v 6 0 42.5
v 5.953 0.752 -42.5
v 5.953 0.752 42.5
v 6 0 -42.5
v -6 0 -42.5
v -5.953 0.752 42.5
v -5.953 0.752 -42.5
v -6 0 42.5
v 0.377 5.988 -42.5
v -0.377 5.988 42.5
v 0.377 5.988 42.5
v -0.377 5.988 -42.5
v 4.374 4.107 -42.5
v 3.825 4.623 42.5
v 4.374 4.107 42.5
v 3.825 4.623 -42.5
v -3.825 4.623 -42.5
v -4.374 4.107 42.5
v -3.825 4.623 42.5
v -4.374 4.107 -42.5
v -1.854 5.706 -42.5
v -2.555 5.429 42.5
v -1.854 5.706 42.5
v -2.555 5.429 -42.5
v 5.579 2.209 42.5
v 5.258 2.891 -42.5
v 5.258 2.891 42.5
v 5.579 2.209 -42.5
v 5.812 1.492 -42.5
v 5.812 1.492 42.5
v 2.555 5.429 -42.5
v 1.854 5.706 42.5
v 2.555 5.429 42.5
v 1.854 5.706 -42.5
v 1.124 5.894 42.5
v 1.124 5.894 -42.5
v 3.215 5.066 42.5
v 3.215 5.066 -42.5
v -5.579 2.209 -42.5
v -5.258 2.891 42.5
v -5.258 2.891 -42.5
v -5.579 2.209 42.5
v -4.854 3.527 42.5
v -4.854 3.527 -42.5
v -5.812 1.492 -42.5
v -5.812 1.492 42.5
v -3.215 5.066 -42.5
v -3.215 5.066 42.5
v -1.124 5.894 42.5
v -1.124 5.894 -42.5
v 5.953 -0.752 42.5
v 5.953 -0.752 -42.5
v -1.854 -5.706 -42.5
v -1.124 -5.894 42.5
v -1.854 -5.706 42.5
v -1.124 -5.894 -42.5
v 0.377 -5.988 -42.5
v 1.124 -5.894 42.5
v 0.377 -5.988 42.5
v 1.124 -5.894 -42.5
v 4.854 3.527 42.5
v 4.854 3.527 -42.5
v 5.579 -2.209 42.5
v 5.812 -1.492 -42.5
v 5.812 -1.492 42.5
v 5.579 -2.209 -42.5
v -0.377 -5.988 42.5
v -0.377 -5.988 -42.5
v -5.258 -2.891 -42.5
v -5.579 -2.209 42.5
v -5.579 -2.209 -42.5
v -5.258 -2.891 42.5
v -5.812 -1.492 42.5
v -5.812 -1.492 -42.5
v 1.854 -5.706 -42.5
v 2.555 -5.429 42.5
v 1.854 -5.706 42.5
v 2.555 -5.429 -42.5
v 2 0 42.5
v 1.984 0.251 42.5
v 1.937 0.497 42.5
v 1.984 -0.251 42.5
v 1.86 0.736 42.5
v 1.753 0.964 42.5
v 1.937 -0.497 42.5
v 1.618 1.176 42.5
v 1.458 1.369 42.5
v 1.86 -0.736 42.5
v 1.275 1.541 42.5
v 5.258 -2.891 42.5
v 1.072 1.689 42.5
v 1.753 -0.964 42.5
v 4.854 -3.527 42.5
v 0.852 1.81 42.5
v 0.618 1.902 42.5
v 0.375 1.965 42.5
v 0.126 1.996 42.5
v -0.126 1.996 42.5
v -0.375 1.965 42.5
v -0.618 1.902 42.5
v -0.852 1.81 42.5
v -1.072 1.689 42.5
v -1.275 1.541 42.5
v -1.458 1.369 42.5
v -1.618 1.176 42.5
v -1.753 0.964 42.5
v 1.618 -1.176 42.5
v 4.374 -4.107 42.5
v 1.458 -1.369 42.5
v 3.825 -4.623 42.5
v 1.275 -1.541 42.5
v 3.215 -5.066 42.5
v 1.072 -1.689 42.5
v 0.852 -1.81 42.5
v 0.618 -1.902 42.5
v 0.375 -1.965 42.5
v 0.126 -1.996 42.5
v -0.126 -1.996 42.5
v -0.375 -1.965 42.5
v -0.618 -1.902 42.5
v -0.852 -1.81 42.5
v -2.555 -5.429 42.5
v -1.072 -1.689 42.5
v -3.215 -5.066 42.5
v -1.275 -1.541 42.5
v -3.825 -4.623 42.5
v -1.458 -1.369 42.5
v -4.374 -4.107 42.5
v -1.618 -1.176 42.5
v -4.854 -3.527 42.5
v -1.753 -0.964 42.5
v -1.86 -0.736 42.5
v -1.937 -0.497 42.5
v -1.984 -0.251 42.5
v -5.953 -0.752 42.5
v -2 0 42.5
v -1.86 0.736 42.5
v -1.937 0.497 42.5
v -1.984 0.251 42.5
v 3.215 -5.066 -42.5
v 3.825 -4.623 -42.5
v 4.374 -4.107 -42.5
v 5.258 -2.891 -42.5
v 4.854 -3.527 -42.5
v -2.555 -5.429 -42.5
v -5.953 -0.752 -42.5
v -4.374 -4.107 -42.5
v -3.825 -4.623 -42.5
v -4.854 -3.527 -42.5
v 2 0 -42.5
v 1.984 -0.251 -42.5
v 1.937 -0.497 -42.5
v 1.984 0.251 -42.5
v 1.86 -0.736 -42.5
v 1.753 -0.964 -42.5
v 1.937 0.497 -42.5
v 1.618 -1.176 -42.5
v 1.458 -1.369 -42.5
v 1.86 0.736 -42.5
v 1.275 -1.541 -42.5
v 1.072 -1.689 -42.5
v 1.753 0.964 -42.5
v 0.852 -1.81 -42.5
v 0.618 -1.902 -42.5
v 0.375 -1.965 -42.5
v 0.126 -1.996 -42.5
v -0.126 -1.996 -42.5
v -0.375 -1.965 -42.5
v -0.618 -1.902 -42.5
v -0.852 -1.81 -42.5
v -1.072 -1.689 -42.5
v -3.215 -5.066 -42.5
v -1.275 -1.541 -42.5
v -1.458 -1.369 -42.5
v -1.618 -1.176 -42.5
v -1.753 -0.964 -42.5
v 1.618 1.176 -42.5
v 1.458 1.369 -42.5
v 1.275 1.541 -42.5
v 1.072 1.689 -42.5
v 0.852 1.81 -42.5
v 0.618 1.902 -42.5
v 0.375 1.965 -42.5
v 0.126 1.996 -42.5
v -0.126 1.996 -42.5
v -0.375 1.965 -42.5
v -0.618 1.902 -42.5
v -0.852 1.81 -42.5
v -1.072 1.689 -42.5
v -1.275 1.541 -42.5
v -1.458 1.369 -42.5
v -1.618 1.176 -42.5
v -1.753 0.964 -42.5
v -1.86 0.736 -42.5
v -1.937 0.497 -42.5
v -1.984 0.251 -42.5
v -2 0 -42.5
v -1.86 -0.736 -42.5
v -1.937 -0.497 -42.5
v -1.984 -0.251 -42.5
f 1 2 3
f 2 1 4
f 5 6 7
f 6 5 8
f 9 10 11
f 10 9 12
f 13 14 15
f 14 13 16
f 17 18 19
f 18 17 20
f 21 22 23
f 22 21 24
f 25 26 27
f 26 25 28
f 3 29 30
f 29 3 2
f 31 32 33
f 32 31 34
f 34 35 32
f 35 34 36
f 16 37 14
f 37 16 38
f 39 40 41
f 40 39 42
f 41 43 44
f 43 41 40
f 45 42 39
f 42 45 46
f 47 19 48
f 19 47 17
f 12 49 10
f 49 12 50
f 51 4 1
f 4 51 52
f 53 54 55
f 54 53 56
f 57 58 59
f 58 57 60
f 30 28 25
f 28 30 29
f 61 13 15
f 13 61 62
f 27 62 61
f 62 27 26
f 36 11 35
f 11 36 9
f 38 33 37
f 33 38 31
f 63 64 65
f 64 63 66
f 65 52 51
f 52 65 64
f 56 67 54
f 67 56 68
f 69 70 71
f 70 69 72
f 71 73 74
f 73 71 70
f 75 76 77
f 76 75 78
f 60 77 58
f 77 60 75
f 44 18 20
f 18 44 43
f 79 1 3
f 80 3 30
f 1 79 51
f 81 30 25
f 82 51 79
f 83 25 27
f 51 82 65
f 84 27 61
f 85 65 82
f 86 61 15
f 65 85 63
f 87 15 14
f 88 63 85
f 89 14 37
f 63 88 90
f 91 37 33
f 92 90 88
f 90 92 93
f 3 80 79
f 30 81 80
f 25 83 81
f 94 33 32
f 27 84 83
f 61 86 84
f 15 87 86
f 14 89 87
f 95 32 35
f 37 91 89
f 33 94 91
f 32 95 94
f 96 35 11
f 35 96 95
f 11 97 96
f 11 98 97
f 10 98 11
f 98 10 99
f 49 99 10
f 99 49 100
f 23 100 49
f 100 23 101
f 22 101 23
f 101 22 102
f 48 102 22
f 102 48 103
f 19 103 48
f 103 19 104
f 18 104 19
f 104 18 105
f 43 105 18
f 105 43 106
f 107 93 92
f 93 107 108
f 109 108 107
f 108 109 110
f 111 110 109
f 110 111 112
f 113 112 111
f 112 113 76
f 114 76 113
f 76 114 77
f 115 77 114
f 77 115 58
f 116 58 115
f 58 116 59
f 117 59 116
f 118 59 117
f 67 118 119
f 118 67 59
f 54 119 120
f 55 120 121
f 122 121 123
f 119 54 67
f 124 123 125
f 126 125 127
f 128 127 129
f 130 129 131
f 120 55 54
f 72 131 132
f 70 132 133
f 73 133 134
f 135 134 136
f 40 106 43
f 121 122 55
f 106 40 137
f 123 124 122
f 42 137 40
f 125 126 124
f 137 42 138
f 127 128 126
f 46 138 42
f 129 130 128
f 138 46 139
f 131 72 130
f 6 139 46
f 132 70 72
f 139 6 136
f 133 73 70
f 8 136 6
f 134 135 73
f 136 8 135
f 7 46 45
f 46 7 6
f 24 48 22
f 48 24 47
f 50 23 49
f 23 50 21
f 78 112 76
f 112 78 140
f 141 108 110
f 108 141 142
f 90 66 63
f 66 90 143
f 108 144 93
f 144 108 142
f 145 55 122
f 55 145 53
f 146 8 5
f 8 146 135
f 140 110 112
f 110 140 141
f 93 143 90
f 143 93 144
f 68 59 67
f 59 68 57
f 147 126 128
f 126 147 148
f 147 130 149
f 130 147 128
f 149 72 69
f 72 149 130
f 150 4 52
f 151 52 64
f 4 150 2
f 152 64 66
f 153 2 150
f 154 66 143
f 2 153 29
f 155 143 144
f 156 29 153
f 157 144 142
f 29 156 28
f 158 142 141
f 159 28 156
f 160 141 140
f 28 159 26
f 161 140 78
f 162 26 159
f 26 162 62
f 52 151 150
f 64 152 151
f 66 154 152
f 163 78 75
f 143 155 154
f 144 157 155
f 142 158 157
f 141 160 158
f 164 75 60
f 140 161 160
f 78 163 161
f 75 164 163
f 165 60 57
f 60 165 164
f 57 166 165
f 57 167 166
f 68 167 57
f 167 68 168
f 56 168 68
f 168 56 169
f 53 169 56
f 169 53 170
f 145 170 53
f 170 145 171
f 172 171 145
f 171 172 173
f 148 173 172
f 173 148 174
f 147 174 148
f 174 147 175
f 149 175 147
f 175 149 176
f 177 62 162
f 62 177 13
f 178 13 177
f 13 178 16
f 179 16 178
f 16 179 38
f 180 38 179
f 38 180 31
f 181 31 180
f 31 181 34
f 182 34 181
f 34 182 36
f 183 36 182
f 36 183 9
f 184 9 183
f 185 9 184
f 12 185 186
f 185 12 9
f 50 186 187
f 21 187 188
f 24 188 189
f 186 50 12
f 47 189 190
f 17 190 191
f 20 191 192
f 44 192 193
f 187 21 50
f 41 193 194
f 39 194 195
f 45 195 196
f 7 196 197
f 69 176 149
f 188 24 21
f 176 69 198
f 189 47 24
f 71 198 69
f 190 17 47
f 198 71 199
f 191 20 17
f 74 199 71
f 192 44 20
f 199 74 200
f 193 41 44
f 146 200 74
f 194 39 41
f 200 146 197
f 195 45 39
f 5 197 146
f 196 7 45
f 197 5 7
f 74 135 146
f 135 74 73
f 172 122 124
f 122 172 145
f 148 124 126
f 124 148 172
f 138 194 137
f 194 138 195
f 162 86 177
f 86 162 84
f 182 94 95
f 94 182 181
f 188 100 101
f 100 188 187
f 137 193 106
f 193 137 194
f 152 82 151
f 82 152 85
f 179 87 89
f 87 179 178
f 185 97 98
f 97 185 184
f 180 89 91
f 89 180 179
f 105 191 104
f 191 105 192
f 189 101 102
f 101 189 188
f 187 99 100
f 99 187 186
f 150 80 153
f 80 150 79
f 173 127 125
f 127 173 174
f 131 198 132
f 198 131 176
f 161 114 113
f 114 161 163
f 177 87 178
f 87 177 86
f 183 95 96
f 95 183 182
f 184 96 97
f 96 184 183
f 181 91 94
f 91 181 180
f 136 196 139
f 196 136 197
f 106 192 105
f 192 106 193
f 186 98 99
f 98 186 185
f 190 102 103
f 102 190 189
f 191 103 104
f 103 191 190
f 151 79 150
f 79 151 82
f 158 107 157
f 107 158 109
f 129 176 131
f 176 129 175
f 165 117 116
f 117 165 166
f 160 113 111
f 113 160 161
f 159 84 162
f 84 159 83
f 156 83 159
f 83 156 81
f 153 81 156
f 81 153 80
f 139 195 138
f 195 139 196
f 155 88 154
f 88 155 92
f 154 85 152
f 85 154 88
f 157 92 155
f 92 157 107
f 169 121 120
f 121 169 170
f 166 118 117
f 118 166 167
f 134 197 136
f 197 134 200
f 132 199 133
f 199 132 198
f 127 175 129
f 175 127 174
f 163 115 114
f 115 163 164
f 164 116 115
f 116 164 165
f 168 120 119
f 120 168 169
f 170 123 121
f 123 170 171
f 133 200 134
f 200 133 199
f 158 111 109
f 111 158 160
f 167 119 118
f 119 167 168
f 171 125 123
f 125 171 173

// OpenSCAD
$fn = 50;


difference() {
	union() {
		translate(v = [0, 0, -42.5000000000]) {
			cylinder(h = 85, r = 6.0000000000);
		}
	}
	union() {
		translate(v = [0, 0, -100.0000000000]) {
			cylinder(h = 200, r = 2.0000000000);
		}
	}
}
